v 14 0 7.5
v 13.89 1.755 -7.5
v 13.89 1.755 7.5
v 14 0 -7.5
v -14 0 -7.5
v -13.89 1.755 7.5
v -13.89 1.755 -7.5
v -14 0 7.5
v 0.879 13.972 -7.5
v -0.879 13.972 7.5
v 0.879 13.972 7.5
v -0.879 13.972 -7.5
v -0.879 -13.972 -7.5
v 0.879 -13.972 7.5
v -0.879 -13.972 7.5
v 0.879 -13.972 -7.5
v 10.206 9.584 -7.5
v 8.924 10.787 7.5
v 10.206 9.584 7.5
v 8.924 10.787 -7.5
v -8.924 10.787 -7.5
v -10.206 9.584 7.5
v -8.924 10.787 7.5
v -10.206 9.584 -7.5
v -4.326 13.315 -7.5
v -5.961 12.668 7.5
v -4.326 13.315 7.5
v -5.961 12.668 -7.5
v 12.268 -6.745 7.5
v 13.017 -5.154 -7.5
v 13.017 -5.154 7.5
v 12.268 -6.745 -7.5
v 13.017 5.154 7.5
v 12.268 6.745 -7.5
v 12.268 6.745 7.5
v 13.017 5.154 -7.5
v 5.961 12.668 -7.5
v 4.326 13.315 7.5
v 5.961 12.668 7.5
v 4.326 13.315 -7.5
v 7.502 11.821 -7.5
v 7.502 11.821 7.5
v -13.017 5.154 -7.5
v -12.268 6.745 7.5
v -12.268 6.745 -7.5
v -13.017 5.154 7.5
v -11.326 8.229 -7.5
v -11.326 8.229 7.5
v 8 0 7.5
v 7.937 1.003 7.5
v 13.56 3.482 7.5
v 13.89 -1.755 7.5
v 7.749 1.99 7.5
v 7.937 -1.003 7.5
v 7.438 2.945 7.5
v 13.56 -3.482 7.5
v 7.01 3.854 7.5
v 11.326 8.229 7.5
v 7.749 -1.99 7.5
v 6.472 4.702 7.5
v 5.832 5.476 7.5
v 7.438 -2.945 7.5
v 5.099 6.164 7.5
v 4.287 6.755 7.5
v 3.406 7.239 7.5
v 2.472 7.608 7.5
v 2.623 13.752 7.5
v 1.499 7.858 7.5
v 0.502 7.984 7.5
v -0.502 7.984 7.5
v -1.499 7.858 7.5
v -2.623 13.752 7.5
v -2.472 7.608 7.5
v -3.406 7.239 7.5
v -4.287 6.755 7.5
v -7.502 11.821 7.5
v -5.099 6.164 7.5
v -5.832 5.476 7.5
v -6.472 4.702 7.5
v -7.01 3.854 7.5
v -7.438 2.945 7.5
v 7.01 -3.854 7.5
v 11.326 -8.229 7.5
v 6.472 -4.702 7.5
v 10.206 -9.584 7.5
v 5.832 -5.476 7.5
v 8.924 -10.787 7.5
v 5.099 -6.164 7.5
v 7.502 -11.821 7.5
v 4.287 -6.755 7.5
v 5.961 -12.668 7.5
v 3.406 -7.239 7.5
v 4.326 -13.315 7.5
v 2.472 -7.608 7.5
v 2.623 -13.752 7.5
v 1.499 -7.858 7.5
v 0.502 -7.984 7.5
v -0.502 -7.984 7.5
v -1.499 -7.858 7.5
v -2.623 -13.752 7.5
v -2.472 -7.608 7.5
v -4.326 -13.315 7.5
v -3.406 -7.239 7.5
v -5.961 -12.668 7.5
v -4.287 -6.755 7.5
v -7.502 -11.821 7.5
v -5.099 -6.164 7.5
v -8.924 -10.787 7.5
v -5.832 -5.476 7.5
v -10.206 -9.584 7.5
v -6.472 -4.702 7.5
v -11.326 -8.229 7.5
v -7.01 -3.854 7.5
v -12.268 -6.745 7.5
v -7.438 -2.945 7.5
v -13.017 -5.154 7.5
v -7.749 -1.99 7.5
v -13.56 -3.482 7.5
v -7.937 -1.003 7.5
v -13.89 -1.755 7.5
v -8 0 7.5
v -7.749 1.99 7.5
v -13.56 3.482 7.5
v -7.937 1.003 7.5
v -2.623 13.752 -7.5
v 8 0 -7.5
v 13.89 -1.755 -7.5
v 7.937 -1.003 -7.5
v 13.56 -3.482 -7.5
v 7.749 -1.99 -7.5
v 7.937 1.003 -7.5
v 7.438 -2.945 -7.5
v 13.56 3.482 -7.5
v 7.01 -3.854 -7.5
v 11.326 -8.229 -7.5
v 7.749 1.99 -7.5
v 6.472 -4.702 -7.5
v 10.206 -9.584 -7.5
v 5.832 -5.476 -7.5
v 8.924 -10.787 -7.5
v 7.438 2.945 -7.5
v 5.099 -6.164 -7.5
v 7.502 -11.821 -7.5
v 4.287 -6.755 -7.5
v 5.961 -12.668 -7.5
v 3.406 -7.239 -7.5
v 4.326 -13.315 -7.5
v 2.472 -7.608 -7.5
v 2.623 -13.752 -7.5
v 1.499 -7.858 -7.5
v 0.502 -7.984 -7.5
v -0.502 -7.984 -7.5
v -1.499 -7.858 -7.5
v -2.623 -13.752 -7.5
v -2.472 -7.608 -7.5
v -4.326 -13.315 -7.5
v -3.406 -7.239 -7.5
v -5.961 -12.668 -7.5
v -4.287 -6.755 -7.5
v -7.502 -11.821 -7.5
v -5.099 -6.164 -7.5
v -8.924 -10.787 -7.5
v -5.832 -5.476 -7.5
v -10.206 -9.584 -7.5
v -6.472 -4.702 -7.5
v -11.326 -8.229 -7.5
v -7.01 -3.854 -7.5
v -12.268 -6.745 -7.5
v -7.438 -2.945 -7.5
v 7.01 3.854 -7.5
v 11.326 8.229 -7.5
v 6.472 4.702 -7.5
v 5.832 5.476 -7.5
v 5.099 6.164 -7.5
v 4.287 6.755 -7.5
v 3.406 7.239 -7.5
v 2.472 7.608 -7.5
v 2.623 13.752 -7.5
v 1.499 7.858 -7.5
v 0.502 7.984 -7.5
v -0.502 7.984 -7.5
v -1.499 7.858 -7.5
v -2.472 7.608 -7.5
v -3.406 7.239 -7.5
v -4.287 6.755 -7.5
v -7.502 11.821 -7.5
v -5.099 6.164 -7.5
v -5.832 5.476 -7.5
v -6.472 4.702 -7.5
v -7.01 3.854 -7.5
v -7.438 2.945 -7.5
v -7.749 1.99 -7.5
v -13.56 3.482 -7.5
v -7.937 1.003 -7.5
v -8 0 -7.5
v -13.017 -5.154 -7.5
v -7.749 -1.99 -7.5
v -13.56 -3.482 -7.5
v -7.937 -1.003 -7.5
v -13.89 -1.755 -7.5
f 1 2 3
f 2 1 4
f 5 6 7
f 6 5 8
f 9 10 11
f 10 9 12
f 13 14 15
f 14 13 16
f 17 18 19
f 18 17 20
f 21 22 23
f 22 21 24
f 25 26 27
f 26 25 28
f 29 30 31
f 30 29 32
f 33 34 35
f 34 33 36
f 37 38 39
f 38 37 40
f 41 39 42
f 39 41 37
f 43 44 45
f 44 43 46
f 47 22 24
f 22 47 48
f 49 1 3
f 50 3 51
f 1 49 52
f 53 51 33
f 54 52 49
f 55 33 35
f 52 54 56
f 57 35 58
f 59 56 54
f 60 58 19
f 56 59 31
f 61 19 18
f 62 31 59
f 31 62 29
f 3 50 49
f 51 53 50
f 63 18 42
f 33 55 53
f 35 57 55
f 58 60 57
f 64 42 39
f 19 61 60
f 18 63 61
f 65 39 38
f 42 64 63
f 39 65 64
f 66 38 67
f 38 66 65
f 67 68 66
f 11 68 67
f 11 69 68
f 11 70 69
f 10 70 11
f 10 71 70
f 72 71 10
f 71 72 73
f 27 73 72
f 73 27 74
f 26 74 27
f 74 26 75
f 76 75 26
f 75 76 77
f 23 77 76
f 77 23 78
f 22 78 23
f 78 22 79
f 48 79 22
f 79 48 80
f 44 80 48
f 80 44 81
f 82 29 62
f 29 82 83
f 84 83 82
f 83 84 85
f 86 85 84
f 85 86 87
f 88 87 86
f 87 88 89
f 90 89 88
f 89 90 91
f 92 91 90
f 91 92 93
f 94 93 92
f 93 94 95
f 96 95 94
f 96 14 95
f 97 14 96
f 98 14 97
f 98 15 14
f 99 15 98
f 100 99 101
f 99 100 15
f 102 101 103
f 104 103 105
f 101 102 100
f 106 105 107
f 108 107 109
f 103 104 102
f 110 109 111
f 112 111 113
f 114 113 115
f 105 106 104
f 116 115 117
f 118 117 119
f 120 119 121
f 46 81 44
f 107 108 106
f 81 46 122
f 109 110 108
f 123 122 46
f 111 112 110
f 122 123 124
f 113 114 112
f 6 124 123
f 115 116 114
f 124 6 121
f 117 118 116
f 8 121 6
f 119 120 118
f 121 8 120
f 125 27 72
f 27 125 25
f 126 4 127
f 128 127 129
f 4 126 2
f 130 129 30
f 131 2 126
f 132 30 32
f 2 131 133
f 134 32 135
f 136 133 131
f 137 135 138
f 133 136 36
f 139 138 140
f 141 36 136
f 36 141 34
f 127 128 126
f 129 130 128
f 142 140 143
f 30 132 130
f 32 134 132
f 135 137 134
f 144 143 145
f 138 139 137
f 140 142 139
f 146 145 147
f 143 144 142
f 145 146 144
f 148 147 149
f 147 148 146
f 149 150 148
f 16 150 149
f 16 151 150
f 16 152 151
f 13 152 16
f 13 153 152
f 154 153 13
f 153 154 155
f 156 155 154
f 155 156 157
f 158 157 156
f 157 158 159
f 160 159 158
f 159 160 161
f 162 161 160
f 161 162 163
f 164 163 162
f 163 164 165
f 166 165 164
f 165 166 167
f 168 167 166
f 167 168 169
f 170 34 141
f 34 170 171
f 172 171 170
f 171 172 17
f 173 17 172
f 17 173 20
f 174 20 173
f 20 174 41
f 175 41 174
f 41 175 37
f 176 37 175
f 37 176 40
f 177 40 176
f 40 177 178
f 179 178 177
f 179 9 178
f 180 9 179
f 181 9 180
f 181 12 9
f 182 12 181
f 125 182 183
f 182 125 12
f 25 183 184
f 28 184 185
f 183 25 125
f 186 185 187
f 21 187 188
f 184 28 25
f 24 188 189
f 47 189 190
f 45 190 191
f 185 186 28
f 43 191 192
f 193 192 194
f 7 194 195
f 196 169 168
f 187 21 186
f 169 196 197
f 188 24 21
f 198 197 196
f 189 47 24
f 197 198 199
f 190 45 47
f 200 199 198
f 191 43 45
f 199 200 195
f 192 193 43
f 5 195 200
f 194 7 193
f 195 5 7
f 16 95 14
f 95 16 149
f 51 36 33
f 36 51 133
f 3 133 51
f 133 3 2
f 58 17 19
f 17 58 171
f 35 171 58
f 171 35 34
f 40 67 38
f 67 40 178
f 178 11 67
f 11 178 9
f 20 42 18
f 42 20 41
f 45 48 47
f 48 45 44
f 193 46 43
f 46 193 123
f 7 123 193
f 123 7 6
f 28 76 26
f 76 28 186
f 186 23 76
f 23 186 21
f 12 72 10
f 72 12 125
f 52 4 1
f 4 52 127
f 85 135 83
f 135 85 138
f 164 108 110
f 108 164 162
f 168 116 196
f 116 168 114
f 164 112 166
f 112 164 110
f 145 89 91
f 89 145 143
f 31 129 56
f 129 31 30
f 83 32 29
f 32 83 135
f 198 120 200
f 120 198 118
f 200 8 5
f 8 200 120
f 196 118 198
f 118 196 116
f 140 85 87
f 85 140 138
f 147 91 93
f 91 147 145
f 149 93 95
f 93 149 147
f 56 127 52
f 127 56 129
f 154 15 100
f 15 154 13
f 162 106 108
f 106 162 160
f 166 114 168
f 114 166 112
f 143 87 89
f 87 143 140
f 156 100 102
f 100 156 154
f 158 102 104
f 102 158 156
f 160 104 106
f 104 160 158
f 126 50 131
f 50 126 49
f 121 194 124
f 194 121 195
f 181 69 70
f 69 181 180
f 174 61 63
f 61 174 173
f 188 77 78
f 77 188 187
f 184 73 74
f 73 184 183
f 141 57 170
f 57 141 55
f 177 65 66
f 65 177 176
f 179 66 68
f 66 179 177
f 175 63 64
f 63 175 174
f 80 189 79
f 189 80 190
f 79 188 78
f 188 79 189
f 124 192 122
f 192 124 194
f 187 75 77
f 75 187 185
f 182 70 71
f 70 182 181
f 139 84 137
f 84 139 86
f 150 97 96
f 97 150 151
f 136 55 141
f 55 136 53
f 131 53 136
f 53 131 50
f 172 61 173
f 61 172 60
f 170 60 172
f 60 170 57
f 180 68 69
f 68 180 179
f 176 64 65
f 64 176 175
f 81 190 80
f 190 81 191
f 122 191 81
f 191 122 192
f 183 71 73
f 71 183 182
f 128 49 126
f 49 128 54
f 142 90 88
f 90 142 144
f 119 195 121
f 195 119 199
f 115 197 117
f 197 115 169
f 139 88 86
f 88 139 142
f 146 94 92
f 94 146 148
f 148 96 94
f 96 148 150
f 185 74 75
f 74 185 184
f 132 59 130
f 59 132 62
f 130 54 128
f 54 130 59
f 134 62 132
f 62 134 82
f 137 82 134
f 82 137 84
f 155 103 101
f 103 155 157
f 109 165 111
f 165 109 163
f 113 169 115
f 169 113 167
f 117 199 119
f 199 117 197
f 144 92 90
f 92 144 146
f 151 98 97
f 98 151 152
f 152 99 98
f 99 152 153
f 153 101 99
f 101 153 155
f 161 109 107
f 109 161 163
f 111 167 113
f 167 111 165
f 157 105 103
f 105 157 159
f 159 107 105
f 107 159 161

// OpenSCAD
$fn = 50;


difference() {
	union() {
		translate(v = [0, 0, -7.5000000000]) {
			cylinder(h = 15, r = 14.0000000000);
		}
	}
	union() {
		translate(v = [0, 0, -100.0000000000]) {
			cylinder(h = 200, r = 8);
		}
	}
}
